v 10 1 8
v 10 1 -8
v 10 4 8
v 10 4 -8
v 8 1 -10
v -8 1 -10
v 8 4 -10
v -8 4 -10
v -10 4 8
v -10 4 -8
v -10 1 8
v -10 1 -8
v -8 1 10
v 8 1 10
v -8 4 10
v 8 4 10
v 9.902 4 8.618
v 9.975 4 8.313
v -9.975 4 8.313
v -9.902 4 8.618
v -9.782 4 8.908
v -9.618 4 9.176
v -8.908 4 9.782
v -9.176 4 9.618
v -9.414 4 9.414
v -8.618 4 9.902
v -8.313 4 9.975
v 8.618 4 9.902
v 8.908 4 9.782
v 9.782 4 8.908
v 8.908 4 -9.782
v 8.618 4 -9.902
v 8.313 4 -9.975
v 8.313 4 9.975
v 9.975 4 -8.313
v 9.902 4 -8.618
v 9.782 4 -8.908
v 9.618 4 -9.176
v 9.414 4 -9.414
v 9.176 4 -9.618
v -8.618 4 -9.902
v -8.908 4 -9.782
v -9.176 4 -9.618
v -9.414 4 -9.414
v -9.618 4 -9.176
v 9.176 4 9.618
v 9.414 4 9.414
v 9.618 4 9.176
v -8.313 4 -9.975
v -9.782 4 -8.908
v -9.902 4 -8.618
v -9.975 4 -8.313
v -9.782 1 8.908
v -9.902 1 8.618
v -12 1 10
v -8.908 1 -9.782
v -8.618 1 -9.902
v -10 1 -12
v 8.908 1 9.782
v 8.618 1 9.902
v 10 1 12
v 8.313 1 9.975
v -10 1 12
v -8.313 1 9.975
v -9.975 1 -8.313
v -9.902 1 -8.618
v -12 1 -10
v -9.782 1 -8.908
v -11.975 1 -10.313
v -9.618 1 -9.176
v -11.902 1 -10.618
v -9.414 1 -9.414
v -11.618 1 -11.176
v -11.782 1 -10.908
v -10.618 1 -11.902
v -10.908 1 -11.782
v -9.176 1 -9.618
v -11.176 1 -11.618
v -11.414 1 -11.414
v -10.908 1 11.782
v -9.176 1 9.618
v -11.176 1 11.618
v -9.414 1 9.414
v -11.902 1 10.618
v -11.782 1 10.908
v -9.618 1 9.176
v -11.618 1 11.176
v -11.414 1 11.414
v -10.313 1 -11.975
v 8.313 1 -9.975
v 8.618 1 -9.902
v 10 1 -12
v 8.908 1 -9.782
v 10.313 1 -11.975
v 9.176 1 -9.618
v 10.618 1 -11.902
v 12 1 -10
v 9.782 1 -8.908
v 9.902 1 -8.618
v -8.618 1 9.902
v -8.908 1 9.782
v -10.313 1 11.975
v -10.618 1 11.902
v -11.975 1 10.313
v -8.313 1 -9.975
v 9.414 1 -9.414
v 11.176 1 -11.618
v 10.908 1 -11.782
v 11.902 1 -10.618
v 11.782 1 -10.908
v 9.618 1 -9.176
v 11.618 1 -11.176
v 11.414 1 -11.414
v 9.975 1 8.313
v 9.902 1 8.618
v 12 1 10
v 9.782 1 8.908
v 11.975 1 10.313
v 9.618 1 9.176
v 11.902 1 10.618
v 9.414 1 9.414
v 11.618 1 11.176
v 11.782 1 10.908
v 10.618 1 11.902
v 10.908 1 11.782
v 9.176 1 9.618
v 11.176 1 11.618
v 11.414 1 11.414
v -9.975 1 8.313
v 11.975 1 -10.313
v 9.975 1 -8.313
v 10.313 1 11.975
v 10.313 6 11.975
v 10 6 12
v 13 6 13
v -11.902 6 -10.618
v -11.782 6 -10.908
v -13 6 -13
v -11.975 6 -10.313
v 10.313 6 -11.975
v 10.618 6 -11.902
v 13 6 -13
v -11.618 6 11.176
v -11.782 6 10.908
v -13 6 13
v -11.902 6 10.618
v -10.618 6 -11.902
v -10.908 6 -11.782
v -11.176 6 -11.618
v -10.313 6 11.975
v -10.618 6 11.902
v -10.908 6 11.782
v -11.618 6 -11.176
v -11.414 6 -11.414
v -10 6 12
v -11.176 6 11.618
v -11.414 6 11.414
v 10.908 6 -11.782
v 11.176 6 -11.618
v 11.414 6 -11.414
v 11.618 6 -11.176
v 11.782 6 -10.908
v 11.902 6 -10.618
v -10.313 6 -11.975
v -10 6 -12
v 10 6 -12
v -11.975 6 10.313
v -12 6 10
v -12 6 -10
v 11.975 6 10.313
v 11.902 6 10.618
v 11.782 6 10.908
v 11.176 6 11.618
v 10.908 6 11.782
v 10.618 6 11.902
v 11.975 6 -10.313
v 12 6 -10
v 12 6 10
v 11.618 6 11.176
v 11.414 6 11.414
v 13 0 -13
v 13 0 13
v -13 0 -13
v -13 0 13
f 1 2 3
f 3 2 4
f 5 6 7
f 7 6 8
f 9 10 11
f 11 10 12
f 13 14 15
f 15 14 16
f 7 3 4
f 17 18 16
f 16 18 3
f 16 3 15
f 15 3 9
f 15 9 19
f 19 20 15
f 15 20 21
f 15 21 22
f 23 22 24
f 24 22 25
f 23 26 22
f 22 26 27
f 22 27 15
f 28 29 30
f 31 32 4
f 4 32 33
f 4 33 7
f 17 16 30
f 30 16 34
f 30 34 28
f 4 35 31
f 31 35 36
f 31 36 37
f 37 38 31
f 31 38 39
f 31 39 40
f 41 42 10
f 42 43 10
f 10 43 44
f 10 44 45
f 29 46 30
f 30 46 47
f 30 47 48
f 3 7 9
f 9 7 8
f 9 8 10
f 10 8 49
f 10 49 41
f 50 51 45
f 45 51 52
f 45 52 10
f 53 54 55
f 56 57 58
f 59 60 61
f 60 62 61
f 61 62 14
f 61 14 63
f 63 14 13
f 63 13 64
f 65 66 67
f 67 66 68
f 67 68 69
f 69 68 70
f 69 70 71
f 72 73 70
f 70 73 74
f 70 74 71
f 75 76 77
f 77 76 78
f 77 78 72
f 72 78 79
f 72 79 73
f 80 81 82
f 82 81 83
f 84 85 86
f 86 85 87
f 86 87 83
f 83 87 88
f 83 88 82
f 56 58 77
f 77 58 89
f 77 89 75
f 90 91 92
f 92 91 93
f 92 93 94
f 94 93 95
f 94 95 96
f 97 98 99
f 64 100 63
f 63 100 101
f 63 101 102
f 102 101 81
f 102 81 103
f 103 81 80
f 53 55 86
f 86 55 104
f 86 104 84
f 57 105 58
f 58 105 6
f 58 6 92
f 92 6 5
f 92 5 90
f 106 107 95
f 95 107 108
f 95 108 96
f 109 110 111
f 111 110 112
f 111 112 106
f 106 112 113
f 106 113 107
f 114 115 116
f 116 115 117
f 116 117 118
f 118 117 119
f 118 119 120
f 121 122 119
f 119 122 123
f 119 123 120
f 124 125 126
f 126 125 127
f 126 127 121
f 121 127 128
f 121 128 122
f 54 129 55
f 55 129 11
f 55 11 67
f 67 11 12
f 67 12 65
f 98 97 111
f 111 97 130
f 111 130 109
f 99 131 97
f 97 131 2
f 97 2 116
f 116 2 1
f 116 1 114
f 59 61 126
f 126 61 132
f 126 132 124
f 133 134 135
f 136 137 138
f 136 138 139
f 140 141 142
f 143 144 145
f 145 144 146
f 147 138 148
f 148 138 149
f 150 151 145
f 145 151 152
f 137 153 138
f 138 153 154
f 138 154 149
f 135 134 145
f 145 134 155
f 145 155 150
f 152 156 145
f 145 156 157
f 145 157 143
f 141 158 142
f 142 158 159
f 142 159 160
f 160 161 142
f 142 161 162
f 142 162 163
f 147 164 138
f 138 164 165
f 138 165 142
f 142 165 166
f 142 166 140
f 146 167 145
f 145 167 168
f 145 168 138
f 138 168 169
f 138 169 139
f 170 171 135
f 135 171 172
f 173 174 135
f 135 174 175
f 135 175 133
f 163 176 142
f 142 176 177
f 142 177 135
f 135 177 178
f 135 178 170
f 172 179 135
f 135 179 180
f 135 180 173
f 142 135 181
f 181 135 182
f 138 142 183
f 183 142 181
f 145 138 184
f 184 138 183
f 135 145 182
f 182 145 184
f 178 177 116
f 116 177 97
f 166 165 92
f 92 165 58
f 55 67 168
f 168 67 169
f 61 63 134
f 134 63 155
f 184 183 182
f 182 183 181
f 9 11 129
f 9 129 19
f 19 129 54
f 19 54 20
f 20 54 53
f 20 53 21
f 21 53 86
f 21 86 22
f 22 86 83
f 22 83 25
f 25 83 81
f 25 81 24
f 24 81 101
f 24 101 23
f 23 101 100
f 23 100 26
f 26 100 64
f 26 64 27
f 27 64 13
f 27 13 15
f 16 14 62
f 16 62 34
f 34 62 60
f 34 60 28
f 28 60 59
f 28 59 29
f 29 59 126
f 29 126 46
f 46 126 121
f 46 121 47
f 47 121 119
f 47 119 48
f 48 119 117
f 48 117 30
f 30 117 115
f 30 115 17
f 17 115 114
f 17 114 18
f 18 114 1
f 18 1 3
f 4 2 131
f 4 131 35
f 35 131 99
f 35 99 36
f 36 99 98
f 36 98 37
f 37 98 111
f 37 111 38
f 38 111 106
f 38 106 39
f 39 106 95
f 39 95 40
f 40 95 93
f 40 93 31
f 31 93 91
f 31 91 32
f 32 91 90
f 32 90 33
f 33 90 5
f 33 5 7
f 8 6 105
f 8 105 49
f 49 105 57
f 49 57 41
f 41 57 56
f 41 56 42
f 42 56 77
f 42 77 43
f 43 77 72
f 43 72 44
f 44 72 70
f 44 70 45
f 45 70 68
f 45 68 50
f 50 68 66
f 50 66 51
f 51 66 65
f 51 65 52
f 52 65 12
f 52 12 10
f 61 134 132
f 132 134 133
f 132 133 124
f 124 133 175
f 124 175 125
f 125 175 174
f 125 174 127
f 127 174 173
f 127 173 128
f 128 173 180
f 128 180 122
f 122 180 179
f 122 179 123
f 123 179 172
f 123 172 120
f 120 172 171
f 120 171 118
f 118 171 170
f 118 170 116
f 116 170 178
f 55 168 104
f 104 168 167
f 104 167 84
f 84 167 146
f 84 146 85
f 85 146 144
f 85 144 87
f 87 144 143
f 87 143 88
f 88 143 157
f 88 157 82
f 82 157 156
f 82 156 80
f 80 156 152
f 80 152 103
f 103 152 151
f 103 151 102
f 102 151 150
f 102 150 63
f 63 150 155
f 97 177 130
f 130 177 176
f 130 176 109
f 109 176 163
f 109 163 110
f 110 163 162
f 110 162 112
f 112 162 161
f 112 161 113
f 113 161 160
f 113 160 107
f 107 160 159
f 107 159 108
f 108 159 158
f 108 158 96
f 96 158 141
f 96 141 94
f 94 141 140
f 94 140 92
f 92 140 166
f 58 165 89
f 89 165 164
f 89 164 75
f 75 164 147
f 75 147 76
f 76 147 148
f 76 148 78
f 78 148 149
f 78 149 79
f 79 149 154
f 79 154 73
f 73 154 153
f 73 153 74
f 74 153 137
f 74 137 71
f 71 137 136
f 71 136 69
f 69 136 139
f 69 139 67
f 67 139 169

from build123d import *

# Parameters (mm, degrees)
SKETCH1_W           = 20
SKETCH1_H           = 20
BOSS_EXTRUDE1_DEPTH = 4
SKETCH2_W           = 24
SKETCH2_H           = 24
BOSS_EXTRUDE2_DEPTH = 1
SKETCH2_3_W         = 26
SKETCH2_3_H         = 26
SKETCH2_3_W_2       = 24
SKETCH2_3_H_2       = 24
BOSS_EXTRUDE3_DEPTH = 6
FILLET1_R           = 2
FILLET2_R           = 2


with BuildPart() as part:
    # Sketch1 → Boss-Extrude1 (new body)
    with BuildSketch(Plane(origin=(0, 0, 0), x_dir=(1, 0, 0), z_dir=(0, 1, 0))):
        Rectangle(SKETCH1_W, SKETCH1_H)
    extrude(amount=BOSS_EXTRUDE1_DEPTH)

    # Sketch2 → Boss-Extrude2 (add)
    with BuildSketch(Plane(origin=(0, 0, 0), x_dir=(1, 0, 0), z_dir=(0, 1, 0))):
        Rectangle(SKETCH2_W, SKETCH2_H)
    extrude(amount=BOSS_EXTRUDE2_DEPTH)

    # Sketch2<3> → Boss-Extrude3 (add)
    with BuildSketch(Plane(origin=(0, 0, 0), x_dir=(1, 0, 0), z_dir=(0, 1, 0))):
        Rectangle(SKETCH2_3_W, SKETCH2_3_H)
        Rectangle(SKETCH2_3_W_2, SKETCH2_3_H_2, mode=Mode.SUBTRACT)
    extrude(amount=BOSS_EXTRUDE3_DEPTH)

    # Fillet1
    fillet1_edges = [part.edges().sort_by_distance(p)[0] for p in [
        (10, 2.5, 10),
        (-10, 2.5, 10),
        (-10, 2.5, -10),
        (10, 2.5, -10),
    ]]
    fillet(fillet1_edges, radius=FILLET1_R)

    # Fillet2
    fillet2_edges = [part.edges().sort_by_distance(p)[0] for p in [
        (12, 3.5, -12),
        (-12, 3.5, -12),
        (-12, 3.5, 12),
        (12, 3.5, 12),
    ]]
    fillet(fillet2_edges, radius=FILLET2_R)


solid = part.part
